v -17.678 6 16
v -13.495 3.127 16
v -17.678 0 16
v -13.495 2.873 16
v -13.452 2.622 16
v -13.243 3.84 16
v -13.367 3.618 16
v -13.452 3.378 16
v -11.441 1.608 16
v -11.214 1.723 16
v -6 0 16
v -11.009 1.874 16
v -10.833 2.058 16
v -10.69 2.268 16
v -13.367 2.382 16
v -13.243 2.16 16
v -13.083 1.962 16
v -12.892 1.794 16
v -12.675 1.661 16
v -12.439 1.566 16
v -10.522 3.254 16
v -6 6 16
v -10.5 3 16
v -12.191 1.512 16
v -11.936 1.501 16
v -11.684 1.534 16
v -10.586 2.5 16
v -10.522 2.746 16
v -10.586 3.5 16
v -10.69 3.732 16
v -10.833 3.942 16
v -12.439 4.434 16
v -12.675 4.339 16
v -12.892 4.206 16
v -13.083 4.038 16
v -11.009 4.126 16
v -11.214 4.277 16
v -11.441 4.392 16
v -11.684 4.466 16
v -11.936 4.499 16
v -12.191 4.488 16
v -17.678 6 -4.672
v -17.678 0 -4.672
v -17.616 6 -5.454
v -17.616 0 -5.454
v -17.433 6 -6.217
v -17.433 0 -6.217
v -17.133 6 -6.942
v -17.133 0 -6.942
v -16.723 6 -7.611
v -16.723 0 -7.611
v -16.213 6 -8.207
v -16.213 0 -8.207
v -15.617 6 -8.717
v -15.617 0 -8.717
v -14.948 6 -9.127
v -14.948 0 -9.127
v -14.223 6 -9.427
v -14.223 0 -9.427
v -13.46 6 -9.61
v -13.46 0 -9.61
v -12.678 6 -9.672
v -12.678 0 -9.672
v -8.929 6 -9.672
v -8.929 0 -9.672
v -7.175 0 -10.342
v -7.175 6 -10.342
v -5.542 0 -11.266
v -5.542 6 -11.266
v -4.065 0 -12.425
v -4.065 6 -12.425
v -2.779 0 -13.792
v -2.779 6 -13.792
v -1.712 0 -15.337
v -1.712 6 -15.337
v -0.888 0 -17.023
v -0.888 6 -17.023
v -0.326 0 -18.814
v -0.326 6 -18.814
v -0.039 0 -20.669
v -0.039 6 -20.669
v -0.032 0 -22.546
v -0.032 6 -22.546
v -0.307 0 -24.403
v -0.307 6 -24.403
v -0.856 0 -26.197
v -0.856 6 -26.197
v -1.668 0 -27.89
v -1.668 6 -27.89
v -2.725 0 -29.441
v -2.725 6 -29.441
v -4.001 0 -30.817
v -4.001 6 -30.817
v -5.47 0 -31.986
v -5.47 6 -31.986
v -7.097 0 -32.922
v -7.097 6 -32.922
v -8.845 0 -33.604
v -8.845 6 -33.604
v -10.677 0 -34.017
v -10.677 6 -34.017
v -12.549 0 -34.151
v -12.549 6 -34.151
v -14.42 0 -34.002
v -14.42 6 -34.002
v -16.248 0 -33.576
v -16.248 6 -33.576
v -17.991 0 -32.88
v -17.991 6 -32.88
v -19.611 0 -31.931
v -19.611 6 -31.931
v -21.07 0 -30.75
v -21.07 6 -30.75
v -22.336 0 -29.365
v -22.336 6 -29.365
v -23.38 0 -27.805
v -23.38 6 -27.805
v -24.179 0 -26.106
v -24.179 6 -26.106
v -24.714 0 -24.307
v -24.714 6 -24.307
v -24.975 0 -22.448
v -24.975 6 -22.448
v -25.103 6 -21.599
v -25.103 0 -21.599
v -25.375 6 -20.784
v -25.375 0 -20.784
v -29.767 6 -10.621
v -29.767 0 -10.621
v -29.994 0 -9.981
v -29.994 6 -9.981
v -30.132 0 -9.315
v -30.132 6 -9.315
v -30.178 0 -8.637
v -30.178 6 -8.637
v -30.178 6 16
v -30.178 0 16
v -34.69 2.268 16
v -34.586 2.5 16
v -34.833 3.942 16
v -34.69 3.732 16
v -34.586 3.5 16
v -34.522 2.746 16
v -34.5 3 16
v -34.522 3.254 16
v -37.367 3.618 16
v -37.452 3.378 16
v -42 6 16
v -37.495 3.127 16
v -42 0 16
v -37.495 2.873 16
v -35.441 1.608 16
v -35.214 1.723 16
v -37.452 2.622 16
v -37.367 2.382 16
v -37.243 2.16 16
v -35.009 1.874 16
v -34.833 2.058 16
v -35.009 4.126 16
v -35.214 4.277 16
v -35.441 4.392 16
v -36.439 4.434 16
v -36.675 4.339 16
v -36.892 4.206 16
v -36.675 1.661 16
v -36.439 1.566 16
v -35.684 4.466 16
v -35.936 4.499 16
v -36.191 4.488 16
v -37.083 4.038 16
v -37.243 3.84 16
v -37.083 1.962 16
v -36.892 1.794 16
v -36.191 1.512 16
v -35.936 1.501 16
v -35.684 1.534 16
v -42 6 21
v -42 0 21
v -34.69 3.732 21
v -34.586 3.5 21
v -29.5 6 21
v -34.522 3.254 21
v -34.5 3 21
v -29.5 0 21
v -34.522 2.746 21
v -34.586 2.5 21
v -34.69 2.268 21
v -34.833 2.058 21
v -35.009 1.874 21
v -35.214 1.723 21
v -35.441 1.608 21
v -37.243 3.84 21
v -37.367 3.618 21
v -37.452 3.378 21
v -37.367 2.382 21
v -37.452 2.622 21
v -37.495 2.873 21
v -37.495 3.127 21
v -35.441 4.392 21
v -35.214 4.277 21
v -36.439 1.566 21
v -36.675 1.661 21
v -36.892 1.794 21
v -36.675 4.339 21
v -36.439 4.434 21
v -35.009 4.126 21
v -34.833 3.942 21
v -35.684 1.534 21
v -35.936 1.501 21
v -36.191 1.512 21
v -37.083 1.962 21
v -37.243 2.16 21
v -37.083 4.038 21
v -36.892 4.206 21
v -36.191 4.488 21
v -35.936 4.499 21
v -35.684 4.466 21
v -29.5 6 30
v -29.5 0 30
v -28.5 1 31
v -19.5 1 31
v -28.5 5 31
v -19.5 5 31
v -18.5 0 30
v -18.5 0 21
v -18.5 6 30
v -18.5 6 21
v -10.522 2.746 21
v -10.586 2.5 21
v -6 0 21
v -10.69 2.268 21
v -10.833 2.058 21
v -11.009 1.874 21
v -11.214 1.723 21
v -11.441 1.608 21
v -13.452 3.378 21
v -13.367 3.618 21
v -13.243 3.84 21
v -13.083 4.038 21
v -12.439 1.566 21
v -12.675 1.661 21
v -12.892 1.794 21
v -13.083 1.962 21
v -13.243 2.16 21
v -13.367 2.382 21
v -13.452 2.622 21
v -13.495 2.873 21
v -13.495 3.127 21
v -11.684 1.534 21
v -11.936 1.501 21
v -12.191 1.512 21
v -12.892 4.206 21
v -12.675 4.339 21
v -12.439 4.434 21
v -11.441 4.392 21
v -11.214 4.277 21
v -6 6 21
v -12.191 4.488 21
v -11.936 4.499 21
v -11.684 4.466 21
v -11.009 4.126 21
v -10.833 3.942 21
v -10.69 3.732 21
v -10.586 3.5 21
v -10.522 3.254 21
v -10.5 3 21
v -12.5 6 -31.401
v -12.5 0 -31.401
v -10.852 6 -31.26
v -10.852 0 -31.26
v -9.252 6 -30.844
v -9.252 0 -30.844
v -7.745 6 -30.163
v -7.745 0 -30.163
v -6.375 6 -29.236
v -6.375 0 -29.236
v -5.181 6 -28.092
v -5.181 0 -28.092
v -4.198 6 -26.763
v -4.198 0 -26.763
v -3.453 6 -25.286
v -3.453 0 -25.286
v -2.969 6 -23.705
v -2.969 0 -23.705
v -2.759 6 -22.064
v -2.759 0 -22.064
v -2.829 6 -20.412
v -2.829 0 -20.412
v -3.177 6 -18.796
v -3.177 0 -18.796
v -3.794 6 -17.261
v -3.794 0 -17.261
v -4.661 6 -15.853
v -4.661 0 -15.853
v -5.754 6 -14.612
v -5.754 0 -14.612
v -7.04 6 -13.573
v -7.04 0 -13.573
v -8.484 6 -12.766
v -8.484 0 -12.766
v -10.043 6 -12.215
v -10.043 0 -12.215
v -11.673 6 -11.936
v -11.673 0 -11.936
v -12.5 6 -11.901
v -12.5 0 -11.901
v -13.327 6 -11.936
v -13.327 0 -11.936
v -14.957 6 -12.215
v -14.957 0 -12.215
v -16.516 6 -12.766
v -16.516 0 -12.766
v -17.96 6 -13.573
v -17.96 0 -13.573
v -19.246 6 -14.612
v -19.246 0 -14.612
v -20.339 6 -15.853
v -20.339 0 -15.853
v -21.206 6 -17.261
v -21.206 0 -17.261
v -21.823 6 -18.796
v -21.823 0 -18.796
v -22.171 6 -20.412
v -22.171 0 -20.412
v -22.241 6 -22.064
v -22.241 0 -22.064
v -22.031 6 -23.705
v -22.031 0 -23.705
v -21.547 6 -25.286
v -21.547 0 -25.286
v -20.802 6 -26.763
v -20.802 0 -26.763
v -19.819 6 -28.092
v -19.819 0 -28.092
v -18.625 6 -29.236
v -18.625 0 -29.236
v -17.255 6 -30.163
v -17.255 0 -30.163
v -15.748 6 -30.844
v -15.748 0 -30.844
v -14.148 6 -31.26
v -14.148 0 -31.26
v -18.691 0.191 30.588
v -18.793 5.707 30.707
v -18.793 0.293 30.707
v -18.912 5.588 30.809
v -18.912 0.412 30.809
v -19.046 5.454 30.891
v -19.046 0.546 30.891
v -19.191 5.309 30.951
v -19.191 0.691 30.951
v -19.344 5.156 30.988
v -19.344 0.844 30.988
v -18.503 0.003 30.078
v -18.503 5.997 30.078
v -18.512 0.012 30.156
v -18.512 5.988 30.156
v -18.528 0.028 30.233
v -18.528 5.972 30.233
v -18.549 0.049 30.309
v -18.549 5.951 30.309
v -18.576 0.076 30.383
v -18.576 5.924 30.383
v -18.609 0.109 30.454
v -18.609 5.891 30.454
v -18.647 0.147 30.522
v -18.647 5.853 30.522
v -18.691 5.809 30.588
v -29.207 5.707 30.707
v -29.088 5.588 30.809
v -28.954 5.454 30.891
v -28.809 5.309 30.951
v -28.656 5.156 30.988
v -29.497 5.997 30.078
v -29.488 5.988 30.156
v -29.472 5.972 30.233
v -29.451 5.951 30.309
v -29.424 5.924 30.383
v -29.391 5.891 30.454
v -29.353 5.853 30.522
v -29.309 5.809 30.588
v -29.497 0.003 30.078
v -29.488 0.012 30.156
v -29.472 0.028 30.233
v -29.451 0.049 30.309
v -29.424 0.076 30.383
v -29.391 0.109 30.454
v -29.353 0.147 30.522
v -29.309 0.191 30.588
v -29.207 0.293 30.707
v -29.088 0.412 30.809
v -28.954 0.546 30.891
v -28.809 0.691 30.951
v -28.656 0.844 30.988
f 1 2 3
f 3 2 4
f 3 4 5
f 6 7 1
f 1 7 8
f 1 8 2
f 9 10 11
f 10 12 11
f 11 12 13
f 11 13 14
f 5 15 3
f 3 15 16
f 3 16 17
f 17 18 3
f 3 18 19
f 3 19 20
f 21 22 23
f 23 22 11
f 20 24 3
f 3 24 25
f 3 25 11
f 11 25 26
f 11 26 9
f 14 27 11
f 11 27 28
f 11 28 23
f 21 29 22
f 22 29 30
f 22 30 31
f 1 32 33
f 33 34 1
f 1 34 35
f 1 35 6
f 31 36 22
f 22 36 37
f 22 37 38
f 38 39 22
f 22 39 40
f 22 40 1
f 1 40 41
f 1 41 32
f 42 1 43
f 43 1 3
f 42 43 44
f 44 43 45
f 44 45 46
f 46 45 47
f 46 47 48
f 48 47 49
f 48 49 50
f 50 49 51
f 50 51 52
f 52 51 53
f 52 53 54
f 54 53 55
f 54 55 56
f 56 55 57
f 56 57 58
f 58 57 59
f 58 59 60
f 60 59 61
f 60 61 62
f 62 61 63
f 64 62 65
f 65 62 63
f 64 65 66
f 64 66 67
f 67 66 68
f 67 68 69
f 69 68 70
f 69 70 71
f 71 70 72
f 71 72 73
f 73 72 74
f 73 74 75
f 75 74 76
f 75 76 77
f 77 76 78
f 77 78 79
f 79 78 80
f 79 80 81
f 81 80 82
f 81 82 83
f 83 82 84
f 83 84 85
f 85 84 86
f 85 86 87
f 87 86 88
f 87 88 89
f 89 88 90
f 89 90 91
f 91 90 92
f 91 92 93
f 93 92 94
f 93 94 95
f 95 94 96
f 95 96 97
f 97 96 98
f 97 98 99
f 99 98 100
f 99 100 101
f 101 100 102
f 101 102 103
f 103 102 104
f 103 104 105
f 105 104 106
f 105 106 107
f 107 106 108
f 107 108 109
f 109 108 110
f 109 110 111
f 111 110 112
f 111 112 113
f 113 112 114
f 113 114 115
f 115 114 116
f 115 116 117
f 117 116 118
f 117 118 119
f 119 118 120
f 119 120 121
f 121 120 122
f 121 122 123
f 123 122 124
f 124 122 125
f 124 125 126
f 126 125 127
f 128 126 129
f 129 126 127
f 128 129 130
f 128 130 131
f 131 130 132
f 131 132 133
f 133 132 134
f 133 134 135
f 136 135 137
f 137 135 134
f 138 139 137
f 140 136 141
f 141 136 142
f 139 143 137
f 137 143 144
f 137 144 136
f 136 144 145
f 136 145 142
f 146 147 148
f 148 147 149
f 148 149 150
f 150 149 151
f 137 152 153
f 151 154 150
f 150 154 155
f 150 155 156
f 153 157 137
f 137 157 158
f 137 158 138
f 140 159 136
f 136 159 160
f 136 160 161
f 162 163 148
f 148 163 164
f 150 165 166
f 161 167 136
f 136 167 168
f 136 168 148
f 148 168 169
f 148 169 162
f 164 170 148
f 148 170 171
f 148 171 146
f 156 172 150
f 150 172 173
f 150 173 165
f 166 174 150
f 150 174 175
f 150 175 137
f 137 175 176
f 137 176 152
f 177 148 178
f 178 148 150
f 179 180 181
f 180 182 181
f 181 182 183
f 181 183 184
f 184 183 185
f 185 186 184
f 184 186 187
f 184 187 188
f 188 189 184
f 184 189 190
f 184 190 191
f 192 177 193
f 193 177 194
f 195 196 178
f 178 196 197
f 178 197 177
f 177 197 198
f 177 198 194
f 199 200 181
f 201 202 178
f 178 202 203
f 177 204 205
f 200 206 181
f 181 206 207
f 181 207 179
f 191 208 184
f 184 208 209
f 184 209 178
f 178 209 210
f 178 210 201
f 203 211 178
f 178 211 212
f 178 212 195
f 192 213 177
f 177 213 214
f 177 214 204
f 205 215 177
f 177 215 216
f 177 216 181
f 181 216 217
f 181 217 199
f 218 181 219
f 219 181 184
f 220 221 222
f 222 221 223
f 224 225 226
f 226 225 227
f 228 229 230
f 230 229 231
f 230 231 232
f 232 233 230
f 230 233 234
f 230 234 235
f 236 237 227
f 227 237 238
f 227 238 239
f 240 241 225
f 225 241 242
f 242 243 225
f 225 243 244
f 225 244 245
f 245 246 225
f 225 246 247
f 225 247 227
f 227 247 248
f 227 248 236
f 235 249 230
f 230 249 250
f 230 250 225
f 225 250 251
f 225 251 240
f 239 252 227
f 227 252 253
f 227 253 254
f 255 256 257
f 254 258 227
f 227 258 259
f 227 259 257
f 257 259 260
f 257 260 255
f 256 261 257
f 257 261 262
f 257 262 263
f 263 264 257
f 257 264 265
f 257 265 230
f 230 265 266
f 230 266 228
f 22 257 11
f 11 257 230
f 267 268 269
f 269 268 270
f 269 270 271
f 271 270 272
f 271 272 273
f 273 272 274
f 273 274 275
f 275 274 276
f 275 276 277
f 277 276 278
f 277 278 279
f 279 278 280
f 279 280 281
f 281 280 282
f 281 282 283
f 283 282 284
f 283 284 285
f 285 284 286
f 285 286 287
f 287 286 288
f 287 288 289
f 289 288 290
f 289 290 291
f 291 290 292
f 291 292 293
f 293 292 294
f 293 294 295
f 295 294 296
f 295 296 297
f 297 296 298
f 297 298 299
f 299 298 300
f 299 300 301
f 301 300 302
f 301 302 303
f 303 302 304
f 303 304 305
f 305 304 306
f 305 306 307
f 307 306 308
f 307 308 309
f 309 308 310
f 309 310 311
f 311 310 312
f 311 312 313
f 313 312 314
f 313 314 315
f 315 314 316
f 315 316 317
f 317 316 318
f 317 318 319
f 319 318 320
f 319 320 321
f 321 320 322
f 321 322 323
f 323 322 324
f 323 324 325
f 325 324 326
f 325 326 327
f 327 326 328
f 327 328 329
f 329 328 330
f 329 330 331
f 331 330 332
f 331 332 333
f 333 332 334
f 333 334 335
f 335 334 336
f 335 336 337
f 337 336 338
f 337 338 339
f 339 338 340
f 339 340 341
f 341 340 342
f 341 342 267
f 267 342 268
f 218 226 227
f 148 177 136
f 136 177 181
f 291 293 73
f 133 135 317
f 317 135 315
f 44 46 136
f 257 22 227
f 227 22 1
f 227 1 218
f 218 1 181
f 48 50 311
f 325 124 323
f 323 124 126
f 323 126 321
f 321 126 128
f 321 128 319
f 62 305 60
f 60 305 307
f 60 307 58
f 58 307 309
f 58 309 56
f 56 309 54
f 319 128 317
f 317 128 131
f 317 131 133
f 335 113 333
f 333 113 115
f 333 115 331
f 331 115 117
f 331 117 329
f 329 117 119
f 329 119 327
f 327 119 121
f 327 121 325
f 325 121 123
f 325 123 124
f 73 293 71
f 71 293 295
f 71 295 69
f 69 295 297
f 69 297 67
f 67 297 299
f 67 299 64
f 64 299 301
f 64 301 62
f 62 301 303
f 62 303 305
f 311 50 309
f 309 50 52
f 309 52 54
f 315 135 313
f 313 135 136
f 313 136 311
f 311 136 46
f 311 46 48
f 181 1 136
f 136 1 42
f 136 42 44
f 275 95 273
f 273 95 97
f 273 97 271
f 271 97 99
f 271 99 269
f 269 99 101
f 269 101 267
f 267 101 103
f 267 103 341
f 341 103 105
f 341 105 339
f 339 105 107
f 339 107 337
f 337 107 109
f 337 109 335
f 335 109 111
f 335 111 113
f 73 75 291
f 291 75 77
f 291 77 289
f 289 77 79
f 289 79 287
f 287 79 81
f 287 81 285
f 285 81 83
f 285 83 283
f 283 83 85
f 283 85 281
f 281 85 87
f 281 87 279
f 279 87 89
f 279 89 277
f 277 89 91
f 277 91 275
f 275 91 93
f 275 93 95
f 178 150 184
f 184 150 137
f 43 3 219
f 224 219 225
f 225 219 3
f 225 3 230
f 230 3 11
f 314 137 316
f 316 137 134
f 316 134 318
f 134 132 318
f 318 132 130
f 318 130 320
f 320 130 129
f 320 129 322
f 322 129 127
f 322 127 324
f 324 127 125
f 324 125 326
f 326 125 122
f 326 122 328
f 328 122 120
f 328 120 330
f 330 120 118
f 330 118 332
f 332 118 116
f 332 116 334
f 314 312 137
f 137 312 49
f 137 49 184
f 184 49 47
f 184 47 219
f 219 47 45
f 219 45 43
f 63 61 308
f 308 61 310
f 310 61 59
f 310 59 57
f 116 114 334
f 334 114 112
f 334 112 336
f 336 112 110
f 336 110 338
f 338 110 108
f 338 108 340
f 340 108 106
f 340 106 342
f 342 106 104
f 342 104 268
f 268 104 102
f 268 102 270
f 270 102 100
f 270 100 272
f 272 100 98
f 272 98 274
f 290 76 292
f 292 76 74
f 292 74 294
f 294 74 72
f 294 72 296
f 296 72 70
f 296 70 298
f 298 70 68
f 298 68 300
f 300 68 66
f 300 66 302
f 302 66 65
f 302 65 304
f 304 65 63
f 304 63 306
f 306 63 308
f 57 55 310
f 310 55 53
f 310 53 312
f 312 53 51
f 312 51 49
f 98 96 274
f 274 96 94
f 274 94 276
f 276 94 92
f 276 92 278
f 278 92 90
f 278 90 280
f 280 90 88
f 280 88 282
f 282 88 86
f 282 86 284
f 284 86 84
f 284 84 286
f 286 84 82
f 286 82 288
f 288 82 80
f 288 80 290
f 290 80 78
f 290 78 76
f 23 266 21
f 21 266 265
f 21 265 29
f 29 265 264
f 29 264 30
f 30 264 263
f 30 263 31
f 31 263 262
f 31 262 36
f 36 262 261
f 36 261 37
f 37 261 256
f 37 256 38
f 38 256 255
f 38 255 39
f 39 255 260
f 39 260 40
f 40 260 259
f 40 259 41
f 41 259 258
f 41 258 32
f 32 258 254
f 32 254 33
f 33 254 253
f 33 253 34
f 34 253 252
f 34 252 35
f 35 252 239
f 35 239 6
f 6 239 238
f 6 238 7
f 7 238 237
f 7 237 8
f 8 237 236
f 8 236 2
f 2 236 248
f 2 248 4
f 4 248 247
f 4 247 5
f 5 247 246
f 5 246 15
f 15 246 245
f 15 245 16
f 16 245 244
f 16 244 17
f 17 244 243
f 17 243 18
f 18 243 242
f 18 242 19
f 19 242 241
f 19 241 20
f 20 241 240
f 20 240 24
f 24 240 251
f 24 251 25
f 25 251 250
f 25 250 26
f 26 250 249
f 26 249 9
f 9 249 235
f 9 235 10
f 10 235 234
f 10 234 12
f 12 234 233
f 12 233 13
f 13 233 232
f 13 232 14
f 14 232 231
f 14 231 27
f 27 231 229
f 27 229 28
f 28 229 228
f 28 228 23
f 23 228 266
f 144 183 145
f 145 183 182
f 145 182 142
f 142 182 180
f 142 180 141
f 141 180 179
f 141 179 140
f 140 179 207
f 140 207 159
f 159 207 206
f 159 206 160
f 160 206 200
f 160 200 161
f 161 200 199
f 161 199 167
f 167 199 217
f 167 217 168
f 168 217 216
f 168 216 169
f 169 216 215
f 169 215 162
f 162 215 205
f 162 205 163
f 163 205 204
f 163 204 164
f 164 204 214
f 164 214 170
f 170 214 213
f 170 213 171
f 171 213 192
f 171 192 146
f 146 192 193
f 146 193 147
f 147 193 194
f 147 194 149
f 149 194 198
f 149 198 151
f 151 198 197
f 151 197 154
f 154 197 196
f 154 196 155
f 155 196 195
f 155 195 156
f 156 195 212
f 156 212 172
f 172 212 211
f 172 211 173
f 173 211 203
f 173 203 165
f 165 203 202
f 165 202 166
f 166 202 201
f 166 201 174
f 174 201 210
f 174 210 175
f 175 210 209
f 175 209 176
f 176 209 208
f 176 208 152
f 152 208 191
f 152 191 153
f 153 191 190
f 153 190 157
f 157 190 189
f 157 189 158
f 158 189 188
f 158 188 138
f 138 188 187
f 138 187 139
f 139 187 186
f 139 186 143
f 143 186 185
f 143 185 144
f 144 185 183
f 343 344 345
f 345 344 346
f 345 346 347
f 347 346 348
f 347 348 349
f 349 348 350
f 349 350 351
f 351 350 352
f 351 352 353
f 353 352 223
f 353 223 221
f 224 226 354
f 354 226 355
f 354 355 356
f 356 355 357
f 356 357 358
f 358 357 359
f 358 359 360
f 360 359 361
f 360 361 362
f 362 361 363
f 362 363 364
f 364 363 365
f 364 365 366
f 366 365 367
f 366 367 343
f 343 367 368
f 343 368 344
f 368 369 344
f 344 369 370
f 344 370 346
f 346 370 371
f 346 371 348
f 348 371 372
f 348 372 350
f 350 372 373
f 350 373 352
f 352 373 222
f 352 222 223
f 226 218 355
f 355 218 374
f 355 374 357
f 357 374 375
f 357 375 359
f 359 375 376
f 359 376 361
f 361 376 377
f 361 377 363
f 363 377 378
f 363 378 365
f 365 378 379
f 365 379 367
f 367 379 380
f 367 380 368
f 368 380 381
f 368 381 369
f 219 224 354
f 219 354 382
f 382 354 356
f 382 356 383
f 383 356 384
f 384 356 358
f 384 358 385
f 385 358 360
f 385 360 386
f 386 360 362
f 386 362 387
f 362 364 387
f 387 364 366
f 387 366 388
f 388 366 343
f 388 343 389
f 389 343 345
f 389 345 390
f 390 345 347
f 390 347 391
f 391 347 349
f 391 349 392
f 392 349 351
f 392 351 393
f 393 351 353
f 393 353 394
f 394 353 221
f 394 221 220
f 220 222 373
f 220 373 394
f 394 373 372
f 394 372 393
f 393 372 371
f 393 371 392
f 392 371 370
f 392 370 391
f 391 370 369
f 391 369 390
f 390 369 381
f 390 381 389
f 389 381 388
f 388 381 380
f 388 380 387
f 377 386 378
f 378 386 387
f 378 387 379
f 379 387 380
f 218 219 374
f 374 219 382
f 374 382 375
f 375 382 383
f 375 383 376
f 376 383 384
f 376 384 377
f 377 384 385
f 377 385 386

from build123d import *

# Parameters (mm, degrees)
CROQUIS1_R              = 9.75
SALIENTE_EXTRUIR1_DEPTH = 6
CROQUIS2_R              = 1.5
CORTAR_EXTRUIR1_DEPTH   = 6
REDONDEO1_R             = 1


with BuildPart() as part:
    # Croquis1 → Saliente-Extruir1 (new body)
    with BuildSketch(Plane(origin=(0, 0, 0), x_dir=(1, 0, 0), z_dir=(0, 1, 0))):
        with BuildLine():
            Line((-25.374701647, 20.783734094), (-29.767291136, 10.621141392))
            ThreePointArc((-29.767291136, 10.621141392), (-29.942112128, 10.153967486), (-30.069514751, 9.671699501))
            ThreePointArc((-30.069514751, 9.671699501), (-30.150557328, 9.157351254), (-30.17766953, 8.637363805))
            Line((-30.17766953, 8.637363805), (-30.17766953, -16))
            Line((-30.17766953, -16), (-42, -16))
            Line((-42, -16), (-42, -21))
            Line((-42, -21), (-29.5, -21))
            Line((-29.5, -21), (-29.5, -31))
            Line((-29.5, -31), (-18.5, -31))
            Line((-18.5, -31), (-18.5, -21))
            Line((-18.5, -21), (-6, -21))
            Line((-6, -21), (-6, -16))
            Line((-6, -16), (-17.67766953, -16))
            Line((-17.67766953, -16), (-17.67766953, 4.671699501))
            ThreePointArc((-17.67766953, 4.671699501), (-16.213203436, 8.207233407), (-12.67766953, 9.671699501))
            Line((-12.67766953, 9.671699501), (-8.928571429, 9.671699501))
            ThreePointArc((-8.928571429, 9.671699501), (-4.713647249, 31.429321655), (-24.974516609, 22.448404084))
            ThreePointArc((-24.974516609, 22.448404084), (-25.102827296, 21.598812807), (-25.374701647, 20.783734094))
        make_face()
        with Locations((-12.5, 21.650635095)):
            Circle(CROQUIS1_R, mode=Mode.SUBTRACT)
    extrude(amount=SALIENTE_EXTRUIR1_DEPTH)

    # Croquis2 → Cortar-Extruir1 (cut)
    with BuildSketch(Plane.XY.offset(21)):
        with Locations((-36, 3)):
            Circle(CROQUIS2_R)
        with Locations((-12, 3)):
            Circle(CROQUIS2_R)
    extrude(amount=-CORTAR_EXTRUIR1_DEPTH, mode=Mode.SUBTRACT)

    # Redondeo1
    redondeo1_edges = [part.edges().sort_by_distance(p)[0] for p in [
        (-24, 0, 31),
        (-18.5, 3, 31),
        (-29.5, 3, 31),
        (-24, 6, 31),
    ]]
    fillet(redondeo1_edges, radius=REDONDEO1_R)


solid = part.part
